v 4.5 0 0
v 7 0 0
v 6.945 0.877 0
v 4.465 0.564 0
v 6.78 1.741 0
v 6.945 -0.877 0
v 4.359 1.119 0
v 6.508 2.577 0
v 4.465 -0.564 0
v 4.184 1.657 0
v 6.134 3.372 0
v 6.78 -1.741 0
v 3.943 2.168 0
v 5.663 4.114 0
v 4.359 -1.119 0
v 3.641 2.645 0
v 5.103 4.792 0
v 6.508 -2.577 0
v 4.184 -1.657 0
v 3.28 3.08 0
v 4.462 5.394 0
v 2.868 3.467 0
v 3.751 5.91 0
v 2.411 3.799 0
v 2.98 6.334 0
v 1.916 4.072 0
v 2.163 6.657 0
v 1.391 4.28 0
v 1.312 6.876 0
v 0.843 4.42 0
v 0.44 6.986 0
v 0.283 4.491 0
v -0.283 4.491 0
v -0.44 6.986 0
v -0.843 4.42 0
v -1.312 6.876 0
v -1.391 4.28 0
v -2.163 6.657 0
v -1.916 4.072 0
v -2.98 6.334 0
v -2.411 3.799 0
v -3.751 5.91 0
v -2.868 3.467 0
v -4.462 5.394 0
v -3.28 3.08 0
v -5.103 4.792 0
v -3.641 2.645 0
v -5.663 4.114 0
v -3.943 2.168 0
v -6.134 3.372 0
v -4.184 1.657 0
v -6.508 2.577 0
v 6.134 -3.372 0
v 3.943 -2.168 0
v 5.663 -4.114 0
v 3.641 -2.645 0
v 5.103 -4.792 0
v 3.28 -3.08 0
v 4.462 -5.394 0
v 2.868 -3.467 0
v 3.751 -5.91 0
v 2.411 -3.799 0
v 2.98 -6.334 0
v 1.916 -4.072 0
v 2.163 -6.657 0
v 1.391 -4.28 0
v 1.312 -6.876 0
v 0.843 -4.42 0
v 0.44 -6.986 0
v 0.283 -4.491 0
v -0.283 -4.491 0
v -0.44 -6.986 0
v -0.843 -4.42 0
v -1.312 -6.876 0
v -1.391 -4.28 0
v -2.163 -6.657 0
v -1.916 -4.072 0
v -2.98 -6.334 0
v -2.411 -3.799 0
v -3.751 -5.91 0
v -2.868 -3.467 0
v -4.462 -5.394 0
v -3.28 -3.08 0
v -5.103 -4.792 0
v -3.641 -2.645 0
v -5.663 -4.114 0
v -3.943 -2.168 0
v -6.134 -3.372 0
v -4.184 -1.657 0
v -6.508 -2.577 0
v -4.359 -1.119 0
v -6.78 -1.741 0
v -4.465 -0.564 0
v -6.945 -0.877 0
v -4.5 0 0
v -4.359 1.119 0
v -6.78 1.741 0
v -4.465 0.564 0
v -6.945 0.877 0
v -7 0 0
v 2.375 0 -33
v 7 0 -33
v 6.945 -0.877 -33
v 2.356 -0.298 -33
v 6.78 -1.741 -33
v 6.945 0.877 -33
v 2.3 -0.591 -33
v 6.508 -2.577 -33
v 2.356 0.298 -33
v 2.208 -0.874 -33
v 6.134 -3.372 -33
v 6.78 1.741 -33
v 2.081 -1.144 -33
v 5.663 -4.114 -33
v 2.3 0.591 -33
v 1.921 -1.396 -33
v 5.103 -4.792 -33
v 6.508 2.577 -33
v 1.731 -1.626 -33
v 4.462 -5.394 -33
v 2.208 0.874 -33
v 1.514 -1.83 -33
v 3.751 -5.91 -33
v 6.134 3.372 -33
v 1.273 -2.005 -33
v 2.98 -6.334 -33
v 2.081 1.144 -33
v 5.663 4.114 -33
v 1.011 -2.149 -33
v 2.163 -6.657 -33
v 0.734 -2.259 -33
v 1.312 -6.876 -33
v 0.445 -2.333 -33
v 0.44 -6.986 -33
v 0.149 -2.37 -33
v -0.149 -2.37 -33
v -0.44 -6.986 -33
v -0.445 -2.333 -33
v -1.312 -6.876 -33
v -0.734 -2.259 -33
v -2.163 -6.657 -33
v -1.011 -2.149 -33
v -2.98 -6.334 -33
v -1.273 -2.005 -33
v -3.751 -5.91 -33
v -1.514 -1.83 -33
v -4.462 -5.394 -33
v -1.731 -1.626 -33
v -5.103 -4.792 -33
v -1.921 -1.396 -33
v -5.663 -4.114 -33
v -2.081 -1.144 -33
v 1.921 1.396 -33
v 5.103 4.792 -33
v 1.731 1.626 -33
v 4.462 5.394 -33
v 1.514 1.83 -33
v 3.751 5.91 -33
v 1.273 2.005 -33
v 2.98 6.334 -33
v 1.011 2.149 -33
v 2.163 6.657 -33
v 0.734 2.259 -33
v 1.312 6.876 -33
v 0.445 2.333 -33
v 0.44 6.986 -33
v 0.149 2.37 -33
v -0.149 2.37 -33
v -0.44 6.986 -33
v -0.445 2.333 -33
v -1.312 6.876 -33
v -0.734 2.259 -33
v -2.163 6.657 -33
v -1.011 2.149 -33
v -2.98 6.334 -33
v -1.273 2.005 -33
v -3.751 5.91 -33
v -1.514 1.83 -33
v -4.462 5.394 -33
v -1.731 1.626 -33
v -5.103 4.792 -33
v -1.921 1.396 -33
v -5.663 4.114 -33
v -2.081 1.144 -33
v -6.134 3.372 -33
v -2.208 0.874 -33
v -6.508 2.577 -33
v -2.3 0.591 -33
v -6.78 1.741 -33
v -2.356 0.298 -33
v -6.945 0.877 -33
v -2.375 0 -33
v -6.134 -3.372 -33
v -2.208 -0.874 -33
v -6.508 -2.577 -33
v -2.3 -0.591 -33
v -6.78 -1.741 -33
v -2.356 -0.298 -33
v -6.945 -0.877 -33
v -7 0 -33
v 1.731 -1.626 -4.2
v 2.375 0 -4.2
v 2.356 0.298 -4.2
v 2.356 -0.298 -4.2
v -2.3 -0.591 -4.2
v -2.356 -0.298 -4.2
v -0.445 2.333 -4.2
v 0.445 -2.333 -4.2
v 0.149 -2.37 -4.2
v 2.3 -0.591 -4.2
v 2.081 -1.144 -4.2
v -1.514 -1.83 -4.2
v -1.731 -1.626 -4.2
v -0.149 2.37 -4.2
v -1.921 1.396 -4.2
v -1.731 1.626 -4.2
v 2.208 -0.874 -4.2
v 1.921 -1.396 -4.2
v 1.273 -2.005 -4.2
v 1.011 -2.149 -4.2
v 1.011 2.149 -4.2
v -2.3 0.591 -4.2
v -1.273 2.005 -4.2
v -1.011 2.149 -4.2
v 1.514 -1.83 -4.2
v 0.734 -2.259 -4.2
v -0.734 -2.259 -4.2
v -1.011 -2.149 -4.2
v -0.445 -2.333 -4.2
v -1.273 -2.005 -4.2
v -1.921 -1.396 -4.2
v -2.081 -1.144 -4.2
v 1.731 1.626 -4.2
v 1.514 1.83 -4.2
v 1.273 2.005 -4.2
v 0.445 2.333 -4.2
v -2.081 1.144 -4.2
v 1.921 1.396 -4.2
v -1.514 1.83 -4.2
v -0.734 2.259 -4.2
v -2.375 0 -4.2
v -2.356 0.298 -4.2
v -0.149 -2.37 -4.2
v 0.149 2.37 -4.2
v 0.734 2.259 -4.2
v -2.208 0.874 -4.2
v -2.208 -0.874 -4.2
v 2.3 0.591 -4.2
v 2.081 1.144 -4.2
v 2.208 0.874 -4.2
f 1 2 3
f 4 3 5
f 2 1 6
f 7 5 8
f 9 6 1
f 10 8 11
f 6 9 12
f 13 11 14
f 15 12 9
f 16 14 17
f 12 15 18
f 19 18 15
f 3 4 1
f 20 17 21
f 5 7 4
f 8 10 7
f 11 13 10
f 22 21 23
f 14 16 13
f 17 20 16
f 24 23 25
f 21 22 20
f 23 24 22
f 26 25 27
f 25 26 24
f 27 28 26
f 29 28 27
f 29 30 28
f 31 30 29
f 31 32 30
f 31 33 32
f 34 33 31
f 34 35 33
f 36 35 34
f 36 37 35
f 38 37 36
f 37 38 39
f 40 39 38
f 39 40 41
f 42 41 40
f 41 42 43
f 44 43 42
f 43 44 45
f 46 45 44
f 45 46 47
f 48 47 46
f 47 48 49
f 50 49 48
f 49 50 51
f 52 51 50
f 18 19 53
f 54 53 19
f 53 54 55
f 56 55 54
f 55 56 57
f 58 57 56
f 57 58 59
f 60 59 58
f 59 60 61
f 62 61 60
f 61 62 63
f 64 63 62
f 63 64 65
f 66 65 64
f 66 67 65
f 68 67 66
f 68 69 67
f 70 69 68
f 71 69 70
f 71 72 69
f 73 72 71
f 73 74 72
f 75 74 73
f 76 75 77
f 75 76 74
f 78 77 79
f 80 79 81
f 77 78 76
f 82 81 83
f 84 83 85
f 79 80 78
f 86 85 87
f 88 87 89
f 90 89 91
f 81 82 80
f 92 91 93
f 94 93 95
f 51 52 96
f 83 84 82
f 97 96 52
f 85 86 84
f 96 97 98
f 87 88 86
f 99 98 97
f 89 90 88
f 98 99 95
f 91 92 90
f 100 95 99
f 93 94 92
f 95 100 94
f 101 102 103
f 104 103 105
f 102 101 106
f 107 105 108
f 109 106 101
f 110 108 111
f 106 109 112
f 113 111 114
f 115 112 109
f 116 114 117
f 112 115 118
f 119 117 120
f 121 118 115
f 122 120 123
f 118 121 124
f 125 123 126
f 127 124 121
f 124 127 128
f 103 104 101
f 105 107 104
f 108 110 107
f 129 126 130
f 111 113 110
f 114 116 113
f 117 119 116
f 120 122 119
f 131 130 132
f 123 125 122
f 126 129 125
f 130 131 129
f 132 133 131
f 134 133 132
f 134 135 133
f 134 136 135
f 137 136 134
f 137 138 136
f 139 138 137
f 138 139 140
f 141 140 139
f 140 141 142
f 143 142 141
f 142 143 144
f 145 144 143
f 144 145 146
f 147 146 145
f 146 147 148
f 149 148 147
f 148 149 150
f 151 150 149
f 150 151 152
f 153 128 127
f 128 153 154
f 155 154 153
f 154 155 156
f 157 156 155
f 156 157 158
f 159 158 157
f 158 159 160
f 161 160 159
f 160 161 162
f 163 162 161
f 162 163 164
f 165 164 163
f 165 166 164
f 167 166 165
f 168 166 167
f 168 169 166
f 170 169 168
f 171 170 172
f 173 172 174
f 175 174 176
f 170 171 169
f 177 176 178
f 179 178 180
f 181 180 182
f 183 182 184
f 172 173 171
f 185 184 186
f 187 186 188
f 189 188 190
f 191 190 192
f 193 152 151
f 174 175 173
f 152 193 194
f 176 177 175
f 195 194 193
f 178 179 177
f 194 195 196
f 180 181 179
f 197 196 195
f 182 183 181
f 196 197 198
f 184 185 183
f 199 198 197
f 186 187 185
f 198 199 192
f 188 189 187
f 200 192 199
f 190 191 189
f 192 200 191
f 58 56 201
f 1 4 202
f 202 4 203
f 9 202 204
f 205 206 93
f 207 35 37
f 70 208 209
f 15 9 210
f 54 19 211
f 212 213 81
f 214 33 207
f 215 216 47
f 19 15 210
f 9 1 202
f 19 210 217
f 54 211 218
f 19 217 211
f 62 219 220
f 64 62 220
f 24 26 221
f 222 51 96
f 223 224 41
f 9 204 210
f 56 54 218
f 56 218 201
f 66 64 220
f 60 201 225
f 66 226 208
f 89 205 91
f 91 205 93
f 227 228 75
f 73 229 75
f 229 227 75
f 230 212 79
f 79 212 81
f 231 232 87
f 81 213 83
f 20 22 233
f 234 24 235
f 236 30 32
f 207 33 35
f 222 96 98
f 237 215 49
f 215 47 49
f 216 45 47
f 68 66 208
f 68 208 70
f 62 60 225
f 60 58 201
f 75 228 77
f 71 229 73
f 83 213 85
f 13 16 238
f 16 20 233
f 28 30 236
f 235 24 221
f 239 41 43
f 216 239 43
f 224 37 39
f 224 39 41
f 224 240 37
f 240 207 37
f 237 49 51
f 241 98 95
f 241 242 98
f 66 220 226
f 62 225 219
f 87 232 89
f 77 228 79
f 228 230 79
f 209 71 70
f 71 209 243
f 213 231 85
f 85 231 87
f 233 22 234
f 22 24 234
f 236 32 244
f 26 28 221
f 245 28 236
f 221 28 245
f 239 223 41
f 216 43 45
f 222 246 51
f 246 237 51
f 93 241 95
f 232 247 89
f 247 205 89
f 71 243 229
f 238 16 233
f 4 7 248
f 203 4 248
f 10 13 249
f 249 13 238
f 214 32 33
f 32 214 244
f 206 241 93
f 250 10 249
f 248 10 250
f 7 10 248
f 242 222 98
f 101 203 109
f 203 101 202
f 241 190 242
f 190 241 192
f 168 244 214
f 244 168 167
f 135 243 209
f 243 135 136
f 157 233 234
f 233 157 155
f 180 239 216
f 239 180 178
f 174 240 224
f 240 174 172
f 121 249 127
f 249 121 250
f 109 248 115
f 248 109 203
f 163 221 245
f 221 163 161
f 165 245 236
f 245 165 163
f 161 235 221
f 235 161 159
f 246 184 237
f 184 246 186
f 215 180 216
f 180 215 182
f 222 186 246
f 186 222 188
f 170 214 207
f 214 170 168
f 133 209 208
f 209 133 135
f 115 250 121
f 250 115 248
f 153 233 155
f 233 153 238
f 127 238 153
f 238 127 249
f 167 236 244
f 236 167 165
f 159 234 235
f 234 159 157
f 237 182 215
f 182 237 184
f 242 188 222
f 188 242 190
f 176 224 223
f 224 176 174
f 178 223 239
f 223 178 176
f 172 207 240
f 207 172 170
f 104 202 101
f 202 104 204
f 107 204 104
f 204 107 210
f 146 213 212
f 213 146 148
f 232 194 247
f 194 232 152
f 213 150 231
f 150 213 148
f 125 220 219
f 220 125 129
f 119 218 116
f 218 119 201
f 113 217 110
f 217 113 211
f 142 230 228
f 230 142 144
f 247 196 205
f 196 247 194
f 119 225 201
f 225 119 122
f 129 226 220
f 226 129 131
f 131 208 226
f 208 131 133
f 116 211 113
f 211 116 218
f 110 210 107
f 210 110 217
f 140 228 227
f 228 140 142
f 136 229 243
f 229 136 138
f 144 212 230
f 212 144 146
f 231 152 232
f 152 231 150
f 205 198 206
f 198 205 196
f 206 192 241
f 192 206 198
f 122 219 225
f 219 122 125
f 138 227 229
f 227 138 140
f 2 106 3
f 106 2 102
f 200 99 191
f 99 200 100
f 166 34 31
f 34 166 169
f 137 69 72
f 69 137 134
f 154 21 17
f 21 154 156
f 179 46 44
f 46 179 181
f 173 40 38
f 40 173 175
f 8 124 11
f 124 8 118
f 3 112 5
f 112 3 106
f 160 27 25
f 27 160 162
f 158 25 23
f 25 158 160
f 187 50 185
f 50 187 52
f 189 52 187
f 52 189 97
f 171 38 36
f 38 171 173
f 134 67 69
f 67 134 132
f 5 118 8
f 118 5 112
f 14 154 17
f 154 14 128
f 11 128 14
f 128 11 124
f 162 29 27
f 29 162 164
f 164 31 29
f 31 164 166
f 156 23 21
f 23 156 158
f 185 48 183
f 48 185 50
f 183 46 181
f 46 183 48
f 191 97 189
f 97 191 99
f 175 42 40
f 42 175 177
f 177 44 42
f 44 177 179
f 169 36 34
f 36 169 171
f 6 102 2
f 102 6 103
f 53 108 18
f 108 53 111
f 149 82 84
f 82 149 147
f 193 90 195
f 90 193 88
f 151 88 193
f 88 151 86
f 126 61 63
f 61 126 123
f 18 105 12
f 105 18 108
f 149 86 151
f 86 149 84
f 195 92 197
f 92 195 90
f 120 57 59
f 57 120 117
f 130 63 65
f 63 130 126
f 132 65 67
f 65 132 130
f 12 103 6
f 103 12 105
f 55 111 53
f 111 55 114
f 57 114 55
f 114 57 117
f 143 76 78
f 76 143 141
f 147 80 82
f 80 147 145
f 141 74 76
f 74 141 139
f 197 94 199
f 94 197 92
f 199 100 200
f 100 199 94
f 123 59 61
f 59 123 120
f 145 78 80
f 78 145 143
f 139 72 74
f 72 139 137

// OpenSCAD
$fn = 50;


difference() {
	union() {
		translate(v = [0, 0, -33.0000000000]) {
			cylinder(h = 33, r = 7.0000000000);
		}
		cylinder(h = 0, r = 17.0000000000);
	}
	union() {
		translate(v = [0, 0, 0]) {
			rotate(a = [0, 0, 0]) {
				difference() {
					union() {
						#translate(v = [0, 0, -33.0000000000]) {
							cylinder(h = 33, r = 2.2500000000);
						}
						#translate(v = [0, 0, -4.2000000000]) {
							cylinder(h = 4.2000000000, r1 = 2.3750000000, r2 = 4.5000000000);
						}
						#translate(v = [0, 0, -33.0000000000]) {
							cylinder(h = 33, r = 2.3750000000);
						}
						#translate(v = [0, 0, -33.0000000000]) {
							cylinder(h = 33, r = 2.2500000000);
						}
					}
					union();
				}
			}
		}
	}
}
